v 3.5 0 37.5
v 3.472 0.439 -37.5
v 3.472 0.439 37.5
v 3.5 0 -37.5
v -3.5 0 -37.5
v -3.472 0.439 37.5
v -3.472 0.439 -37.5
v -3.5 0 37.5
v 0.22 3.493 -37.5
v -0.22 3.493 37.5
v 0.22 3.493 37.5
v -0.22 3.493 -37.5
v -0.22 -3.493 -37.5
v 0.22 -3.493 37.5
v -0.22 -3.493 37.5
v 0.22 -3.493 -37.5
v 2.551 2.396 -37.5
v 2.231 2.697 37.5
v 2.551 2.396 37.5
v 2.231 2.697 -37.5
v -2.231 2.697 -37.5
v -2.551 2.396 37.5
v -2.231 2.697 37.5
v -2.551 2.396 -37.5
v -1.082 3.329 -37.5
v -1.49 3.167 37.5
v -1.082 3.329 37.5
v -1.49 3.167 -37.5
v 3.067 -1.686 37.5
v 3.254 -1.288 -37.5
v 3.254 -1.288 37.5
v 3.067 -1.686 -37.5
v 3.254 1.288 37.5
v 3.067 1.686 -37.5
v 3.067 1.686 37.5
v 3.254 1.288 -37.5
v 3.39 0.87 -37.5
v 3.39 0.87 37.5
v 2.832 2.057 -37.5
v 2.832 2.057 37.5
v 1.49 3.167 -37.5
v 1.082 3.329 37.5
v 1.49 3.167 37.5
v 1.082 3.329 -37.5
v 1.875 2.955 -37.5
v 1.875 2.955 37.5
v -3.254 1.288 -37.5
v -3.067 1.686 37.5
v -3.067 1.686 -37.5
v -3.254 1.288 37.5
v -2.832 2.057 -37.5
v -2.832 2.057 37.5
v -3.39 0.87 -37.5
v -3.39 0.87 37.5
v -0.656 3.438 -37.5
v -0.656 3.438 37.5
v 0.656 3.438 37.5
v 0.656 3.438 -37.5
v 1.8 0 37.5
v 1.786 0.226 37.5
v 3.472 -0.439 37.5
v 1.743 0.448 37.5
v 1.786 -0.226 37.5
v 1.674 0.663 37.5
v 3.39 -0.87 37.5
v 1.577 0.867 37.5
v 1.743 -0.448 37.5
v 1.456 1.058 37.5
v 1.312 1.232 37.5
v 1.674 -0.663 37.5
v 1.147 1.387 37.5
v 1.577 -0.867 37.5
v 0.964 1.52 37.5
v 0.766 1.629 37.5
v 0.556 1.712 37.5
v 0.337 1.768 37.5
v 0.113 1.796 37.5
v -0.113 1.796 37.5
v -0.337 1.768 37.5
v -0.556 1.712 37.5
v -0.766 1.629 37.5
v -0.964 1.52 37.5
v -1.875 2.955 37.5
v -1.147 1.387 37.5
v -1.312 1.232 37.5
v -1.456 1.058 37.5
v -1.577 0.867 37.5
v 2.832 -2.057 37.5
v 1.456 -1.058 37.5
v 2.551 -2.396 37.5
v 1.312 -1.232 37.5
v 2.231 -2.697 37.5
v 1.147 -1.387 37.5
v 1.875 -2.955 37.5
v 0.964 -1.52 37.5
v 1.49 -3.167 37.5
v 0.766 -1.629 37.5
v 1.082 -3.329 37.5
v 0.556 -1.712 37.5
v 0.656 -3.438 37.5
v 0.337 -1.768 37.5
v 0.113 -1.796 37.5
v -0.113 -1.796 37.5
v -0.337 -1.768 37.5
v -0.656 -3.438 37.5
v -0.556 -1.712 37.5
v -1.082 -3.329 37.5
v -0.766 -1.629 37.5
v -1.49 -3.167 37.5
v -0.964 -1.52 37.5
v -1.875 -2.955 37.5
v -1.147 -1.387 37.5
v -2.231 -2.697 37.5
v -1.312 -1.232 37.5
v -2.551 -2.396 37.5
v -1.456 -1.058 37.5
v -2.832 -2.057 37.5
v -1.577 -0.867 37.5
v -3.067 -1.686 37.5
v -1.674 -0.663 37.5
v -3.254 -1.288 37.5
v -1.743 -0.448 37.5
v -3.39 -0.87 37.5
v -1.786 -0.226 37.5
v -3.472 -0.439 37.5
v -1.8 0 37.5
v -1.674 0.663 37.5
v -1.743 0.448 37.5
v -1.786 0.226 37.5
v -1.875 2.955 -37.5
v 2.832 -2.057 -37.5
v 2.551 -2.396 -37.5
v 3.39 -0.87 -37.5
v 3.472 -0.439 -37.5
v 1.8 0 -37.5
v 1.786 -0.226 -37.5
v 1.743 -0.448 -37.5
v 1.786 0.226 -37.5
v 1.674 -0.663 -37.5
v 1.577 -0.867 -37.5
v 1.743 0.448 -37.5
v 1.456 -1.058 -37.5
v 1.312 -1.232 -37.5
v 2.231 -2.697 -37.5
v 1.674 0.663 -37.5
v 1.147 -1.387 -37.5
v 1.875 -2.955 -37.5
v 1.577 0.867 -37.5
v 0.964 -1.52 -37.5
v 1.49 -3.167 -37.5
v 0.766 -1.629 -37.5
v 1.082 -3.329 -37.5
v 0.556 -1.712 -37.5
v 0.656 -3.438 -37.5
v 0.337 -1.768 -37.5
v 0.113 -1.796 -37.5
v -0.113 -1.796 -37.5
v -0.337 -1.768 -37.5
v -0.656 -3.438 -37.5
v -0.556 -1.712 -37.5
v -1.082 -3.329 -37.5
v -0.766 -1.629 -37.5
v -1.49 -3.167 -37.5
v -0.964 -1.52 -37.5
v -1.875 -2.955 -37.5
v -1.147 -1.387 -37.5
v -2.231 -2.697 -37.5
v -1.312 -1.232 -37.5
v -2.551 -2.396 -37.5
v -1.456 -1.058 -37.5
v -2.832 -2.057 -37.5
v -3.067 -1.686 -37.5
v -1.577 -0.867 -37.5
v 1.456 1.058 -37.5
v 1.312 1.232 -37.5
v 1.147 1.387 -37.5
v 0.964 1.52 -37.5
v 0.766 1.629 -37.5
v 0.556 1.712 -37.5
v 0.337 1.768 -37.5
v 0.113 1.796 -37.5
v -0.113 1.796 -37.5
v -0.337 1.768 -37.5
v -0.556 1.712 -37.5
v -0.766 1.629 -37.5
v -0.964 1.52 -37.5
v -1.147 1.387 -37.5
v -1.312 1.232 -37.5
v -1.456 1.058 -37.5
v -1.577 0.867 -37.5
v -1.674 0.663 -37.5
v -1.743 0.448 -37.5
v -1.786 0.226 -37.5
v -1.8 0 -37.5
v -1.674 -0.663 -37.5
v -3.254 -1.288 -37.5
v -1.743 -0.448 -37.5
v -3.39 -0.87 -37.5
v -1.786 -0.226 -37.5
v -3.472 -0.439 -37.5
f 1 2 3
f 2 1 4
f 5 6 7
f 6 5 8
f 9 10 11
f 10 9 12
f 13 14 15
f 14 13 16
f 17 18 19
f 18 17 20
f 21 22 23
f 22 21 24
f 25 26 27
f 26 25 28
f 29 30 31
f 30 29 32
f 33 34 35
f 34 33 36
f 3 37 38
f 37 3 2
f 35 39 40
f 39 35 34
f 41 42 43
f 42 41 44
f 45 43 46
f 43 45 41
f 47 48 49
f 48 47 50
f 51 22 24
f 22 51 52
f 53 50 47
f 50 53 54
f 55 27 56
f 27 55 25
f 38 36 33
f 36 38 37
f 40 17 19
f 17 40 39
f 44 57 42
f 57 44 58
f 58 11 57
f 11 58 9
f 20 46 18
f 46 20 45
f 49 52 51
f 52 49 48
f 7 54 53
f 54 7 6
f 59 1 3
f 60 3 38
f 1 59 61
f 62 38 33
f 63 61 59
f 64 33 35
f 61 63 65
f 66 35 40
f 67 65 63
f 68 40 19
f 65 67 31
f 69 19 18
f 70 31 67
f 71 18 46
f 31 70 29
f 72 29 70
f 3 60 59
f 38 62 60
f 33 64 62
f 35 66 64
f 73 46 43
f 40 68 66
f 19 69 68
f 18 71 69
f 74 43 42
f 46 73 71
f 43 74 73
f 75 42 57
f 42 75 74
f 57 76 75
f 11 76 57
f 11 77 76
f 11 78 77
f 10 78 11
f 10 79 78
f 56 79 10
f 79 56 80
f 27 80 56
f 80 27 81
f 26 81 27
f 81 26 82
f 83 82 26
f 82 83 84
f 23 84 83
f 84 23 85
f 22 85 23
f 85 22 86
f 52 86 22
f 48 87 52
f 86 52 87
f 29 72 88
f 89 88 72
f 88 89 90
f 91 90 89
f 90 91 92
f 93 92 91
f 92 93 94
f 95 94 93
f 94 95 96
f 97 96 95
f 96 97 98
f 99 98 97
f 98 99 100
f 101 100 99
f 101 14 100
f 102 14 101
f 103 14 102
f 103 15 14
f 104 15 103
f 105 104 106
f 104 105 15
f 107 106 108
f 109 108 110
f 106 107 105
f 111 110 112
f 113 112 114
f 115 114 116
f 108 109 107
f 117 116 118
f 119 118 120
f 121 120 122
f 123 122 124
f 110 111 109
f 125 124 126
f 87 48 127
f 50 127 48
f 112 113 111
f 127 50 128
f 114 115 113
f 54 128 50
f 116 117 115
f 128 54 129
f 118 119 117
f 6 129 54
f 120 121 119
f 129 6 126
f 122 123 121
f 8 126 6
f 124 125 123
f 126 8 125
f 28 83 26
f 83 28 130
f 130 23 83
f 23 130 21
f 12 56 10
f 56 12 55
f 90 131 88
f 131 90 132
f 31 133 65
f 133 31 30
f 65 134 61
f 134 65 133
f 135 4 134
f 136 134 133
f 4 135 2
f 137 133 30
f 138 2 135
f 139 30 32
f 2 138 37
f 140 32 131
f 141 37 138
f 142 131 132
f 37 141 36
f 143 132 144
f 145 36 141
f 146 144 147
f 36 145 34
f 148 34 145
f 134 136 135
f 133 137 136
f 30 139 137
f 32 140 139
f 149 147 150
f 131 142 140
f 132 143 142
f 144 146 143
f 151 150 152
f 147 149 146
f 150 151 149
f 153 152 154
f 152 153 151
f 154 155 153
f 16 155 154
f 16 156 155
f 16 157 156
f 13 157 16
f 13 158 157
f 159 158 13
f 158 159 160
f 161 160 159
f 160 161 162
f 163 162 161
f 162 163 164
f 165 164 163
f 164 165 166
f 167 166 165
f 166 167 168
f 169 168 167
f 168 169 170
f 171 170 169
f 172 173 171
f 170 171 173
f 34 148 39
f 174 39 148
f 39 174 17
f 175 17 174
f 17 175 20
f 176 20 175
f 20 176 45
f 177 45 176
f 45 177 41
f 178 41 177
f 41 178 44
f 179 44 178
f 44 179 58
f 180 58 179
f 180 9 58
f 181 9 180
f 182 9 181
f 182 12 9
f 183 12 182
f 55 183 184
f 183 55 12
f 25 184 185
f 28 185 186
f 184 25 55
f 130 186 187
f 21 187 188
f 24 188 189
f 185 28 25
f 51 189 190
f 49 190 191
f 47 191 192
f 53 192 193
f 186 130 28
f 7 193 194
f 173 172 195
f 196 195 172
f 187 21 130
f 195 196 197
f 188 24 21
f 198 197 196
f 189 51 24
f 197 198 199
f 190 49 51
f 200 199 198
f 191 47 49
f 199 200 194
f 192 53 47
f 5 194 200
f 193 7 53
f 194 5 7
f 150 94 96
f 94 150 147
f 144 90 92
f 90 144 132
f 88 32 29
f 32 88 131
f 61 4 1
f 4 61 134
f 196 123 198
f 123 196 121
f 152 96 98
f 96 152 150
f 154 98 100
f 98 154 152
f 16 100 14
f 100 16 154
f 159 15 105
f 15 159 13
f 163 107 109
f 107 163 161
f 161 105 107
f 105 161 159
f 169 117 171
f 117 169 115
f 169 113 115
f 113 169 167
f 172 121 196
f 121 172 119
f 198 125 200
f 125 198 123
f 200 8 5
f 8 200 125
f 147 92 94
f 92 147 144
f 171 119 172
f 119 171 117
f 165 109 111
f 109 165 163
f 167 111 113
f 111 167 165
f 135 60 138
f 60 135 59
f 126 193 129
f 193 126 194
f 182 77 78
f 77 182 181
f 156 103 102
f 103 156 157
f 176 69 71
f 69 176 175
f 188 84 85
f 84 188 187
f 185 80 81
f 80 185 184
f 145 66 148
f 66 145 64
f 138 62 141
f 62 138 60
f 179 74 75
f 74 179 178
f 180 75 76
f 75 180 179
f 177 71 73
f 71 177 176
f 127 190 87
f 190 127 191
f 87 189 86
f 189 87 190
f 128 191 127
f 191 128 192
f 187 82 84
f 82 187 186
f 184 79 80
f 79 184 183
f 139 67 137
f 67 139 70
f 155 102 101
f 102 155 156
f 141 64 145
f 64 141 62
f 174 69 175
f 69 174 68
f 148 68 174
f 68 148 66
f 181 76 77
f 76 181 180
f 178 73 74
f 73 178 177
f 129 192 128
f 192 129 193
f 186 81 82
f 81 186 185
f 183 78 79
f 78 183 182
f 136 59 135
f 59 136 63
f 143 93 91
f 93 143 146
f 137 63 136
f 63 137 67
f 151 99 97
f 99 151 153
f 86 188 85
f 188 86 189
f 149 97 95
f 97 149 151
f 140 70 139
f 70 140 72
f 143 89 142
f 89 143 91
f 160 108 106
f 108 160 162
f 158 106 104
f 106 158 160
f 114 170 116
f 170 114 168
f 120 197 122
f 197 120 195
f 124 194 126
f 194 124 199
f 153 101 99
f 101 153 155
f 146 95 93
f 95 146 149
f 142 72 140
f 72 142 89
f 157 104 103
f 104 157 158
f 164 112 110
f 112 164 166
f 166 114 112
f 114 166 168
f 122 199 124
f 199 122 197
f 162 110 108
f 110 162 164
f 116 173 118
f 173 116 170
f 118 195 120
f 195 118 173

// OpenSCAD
$fn = 50;


difference() {
	union() {
		translate(v = [0, 0, -37.5000000000]) {
			cylinder(h = 75, r = 3.5000000000);
		}
	}
	union() {
		translate(v = [0, 0, -100.0000000000]) {
			cylinder(h = 200, r = 1.8000000000);
		}
	}
}
